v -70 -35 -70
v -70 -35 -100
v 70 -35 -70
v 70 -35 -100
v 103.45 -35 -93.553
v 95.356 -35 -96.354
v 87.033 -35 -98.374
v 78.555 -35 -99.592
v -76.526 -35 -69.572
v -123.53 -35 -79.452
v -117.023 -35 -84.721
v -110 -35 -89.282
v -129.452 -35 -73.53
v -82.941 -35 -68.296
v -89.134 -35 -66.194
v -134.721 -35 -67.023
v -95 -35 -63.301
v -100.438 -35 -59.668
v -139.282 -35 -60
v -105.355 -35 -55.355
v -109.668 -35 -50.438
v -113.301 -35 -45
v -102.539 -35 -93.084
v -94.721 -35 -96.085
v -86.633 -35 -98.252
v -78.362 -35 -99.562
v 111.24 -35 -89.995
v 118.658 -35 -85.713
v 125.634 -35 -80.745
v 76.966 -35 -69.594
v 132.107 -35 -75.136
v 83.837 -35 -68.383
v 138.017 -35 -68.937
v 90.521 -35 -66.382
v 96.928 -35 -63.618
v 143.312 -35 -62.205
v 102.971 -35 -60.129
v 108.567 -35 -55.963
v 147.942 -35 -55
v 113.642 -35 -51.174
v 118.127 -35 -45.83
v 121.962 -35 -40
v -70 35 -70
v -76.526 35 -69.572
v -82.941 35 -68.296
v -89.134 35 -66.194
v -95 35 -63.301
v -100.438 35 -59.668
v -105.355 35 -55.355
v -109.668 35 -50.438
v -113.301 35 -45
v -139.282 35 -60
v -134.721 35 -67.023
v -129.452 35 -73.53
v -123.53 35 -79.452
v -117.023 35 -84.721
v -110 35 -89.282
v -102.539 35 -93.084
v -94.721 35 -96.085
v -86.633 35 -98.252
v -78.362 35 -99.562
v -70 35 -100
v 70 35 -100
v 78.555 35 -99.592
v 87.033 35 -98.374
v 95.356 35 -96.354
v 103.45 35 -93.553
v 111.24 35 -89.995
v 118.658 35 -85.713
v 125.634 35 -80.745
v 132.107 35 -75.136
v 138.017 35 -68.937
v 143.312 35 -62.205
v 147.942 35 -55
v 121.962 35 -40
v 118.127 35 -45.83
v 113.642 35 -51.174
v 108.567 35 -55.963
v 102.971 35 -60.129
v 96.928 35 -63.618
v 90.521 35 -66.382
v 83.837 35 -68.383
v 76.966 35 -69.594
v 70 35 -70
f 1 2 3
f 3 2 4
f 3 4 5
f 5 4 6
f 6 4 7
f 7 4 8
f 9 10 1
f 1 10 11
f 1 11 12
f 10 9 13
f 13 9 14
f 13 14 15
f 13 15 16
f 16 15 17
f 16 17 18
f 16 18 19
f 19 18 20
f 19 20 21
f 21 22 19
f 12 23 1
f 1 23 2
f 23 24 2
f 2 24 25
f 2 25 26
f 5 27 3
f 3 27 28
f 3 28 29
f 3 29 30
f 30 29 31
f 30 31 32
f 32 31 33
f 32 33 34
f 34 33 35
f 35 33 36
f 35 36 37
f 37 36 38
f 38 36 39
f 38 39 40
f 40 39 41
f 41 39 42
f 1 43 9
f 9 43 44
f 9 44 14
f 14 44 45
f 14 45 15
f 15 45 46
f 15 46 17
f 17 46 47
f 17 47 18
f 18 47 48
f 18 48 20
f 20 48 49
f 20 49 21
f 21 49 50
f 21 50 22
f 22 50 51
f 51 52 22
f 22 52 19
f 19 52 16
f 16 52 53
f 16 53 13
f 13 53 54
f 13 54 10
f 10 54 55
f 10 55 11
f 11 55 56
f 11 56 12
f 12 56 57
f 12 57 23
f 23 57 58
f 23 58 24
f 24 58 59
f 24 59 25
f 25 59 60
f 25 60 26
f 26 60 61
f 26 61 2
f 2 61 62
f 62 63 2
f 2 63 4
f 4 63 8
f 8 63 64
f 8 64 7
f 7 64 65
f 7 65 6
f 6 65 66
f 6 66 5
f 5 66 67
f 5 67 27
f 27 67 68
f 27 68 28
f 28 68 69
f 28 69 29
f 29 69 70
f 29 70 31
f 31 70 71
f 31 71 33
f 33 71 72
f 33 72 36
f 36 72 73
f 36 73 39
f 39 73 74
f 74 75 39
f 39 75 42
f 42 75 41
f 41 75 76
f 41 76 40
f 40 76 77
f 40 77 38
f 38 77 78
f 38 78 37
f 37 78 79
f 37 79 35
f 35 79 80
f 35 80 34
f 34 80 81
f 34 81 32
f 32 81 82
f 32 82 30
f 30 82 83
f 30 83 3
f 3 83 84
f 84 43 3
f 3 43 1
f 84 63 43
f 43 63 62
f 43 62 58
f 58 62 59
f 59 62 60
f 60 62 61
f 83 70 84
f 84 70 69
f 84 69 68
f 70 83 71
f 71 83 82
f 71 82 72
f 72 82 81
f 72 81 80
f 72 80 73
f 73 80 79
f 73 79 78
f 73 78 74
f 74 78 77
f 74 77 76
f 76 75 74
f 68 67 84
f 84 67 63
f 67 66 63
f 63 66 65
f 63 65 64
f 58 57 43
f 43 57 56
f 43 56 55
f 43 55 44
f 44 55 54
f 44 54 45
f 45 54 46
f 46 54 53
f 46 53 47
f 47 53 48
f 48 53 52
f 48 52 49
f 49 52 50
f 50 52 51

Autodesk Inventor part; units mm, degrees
ref_plane "YZ Plane" through (0, 0, 0) normal (1, 0, 0) x (0, 1, 0)
ref_plane "XZ Plane" through (0, 0, 0) normal (0, 1, 0) x (-1, 0, 0)
ref_plane "XY Plane" through (0, 0, 0) normal (0, 0, 1) x (1, 0, 0)
sketch "スケッチ1" plane through (0, 0, 0) normal (0, 1, 0) x (-1, 0, 0)
  circle A0 centre (70, -20) radius 80
  circle A1 centre (-70, -10) radius 90
  line L0 (70, -100) -> (-70, -100)
  line L1 (70, -20) -> (70, -100)
  line L2 (70, -20) -> (139.282, -60)
  line L3 (-70, -10) -> (-70, -100)
  line L4 (-70, -10) -> (-147.9423, -55)
  circle A2 centre (70, -20) radius 50
  circle A3 centre (-70, -10) radius 60
  line L5 (70, -70) -> (-70, -70)
  point P0 (0, 0)
  point P1 (113.3013, -45)
  point P2 (-121.9615, -40)
  dimension "d7" = 100
  dimension "d8" = 120
  dimension "d0" = 160
  dimension "d1" = 180
  dimension "d2" = 100
  dimension "d3" = 70
  dimension "d4" = 70
  dimension "d5" = 60
  dimension "d6" = 60
extrude "押し出し1" add sketch "スケッチ1" along normal mid plane 70 contours L1 A2 L2 A0 | L0 A1 L5 A0 | A0 L5 L1 | L3 L5 A1 | A1 L4 A3 L3
fillet "フィレット1" [suppressed]
properties part number "ArcSole2b"
